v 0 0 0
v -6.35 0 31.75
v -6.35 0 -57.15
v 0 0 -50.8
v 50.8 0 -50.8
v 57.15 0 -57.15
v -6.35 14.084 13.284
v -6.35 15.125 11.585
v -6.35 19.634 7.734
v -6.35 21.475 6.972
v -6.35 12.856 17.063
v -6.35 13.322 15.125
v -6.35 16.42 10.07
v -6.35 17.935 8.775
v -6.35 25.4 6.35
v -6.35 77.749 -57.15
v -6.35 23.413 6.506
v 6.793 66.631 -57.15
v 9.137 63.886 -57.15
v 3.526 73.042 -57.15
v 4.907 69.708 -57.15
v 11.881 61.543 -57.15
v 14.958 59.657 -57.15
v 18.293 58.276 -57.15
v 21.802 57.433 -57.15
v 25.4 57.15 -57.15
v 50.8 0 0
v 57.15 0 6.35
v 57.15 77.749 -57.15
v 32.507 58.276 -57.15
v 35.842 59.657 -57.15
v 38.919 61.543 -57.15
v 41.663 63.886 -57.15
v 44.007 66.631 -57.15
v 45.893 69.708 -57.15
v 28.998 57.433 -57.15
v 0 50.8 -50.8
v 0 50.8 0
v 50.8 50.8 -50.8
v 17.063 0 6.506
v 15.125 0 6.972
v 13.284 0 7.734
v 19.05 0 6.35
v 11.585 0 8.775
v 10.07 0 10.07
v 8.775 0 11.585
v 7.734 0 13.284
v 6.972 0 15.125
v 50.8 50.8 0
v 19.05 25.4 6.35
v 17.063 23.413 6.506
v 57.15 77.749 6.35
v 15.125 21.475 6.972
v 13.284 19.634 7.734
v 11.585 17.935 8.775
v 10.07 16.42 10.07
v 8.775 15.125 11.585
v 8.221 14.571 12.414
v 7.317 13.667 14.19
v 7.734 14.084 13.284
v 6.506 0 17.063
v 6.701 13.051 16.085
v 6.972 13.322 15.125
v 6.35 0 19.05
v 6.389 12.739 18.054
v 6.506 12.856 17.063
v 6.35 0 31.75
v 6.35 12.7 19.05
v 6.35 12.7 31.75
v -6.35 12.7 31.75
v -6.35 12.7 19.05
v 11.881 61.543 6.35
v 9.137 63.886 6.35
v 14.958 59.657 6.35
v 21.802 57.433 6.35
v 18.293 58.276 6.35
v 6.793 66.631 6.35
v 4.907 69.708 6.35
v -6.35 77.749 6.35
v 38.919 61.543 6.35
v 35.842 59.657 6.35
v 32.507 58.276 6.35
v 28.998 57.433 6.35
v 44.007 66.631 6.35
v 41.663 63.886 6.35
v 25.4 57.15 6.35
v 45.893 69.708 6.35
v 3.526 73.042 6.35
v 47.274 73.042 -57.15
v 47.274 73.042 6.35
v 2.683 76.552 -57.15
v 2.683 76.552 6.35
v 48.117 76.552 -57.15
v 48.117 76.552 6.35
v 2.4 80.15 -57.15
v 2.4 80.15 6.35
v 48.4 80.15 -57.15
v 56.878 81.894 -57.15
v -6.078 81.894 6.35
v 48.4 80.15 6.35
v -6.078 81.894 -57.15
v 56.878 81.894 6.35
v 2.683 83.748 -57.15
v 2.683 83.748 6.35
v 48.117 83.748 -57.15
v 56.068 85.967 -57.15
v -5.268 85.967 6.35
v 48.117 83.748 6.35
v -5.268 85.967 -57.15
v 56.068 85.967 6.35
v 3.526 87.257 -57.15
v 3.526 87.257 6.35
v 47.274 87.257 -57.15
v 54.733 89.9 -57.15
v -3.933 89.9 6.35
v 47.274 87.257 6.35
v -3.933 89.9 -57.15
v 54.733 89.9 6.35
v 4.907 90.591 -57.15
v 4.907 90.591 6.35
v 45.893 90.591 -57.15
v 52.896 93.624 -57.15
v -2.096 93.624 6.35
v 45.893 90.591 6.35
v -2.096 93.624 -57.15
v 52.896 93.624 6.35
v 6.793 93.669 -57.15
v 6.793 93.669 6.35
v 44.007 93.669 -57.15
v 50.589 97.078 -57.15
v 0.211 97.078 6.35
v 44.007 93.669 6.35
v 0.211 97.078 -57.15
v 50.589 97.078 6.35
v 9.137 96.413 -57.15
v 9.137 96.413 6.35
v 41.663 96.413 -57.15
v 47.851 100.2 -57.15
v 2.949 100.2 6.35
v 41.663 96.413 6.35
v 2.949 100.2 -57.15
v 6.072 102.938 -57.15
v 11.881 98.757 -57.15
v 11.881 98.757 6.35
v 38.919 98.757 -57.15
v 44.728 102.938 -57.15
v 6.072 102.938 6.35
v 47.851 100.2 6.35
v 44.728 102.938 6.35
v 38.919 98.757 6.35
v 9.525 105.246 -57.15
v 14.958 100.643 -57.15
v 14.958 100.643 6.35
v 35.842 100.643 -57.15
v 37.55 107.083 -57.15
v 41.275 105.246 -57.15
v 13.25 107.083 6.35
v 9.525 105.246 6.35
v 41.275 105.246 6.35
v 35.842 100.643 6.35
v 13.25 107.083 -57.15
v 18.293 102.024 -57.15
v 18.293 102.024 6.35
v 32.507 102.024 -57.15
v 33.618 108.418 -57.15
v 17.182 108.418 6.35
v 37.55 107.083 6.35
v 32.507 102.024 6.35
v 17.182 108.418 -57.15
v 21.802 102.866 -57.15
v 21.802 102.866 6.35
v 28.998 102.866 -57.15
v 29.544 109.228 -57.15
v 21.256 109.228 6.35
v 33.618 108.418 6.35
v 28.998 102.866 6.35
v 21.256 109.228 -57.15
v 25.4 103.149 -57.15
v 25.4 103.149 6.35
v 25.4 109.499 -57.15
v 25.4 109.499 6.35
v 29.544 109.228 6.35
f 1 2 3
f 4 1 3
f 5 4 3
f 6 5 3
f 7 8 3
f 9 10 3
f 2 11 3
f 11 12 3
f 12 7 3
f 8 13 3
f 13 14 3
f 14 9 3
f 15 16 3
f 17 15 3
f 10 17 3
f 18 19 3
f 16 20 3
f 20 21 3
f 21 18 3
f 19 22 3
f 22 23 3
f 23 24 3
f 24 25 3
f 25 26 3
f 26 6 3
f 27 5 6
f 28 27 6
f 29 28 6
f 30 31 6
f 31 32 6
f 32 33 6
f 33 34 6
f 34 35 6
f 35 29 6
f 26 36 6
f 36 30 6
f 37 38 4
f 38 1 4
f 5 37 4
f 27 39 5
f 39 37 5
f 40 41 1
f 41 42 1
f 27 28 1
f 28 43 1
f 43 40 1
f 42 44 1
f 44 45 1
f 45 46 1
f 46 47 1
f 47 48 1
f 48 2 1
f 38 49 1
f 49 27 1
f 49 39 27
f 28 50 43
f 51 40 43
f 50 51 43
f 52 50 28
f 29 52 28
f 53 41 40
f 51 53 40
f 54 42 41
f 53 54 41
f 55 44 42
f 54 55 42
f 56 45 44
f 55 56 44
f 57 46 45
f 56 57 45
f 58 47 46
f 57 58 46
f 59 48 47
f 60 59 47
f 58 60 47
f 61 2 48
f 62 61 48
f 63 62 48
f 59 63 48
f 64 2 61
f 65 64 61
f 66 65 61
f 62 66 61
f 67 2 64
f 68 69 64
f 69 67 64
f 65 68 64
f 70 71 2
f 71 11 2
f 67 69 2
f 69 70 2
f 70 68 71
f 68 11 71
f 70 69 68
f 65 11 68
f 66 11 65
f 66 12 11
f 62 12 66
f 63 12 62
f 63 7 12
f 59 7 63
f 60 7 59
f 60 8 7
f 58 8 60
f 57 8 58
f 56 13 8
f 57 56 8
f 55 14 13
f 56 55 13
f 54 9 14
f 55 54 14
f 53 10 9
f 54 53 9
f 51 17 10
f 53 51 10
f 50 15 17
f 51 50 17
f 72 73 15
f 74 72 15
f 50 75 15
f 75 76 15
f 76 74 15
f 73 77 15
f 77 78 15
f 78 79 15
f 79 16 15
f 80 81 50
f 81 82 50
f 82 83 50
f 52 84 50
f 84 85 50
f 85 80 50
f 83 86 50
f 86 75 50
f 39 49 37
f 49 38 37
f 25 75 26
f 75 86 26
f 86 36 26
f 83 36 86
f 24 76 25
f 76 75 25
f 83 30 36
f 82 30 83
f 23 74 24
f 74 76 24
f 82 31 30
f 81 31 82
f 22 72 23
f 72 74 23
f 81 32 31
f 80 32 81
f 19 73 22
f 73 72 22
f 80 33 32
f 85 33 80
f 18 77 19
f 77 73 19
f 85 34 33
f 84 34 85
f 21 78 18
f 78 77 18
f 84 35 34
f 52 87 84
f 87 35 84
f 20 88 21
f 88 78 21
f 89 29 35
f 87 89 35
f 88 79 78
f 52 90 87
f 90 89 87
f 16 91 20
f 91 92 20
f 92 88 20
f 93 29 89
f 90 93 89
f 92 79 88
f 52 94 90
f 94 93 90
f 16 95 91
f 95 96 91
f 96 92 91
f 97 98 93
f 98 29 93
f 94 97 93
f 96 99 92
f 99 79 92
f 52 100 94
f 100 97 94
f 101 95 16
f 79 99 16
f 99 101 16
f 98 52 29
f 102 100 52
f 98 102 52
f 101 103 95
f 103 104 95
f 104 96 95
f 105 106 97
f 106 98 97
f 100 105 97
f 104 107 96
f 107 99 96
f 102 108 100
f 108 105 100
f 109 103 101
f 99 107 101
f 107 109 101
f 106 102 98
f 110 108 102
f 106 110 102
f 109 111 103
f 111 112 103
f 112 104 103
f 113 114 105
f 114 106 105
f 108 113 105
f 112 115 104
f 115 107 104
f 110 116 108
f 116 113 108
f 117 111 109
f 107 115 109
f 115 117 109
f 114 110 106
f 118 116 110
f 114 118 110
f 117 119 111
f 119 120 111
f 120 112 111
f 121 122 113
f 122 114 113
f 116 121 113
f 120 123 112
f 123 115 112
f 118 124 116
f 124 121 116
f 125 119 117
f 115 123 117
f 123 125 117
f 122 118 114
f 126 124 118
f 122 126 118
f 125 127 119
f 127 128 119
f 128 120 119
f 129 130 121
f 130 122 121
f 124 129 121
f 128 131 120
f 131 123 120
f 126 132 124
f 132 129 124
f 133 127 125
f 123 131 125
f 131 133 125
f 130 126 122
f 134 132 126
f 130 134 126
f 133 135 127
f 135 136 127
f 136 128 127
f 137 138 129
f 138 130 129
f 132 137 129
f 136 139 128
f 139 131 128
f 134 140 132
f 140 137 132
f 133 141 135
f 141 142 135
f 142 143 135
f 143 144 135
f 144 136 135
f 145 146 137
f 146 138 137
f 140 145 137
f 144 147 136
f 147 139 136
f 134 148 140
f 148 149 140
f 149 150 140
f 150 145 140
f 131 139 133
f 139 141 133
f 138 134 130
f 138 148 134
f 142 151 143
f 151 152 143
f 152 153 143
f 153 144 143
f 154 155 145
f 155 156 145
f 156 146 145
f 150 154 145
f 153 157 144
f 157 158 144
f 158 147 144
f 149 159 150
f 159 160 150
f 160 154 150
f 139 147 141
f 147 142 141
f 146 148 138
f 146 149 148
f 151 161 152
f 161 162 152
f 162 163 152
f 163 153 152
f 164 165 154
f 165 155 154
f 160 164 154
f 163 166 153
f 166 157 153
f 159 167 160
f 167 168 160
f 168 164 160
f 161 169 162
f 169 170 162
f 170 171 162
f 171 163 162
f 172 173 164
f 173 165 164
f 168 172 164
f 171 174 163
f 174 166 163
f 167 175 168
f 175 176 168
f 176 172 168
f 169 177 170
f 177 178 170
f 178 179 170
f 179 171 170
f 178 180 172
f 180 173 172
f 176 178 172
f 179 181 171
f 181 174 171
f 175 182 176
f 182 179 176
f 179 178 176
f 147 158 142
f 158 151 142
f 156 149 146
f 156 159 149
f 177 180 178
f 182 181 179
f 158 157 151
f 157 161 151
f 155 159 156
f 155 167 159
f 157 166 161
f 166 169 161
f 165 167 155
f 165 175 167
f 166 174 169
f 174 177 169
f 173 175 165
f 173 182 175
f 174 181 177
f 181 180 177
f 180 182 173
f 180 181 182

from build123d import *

# Parameters (mm, degrees)
SKETCH1_W           = 63.5
SKETCH1_H           = 63.5
SKETCH1_W_2         = 50.8
SKETCH1_H_2         = 50.8
BOSS_EXTRUDE1_DEPTH = 50.8
SKETCH2_W           = 63.5
SKETCH2_H           = 63.5
BOSS_EXTRUDE3_DEPTH = 6.35
SKETCH3_W           = 63.5
SKETCH3_H           = 63.5
BOSS_EXTRUDE4_DEPTH = 52.3494
SKETCH4_R           = 22.9997
CUT_EXTRUDE1_DEPTH  = 139.883012281
FILLET2_R           = 31.75
SKETCH5_W           = 12.7
SKETCH5_H           = 12.7
BOSS_EXTRUDE5_DEPTH = 25.4
FILLET3_R           = 12.7


with BuildPart() as part:
    # Sketch1 → Boss-Extrude1 (new body)
    with BuildSketch(Plane(origin=(0, 0, 0), x_dir=(1, 0, 0), z_dir=(0, 1, 0))):
        with Locations((25.4, 25.4)):
            Rectangle(SKETCH1_W, SKETCH1_H)
        with Locations((25.4, 25.4)):
            Rectangle(SKETCH1_W_2, SKETCH1_H_2, mode=Mode.SUBTRACT)
    extrude(amount=BOSS_EXTRUDE1_DEPTH)

    # Sketch2 → Boss-Extrude3 (add)
    with BuildSketch(Plane(origin=(0, 50.8, 0), x_dir=(1, 0, 0), z_dir=(0, 1, 0))):
        with Locations((25.4, 25.4)):
            Rectangle(SKETCH2_W, SKETCH2_H)
    extrude(amount=BOSS_EXTRUDE3_DEPTH)

    # Sketch3 → Boss-Extrude4 (add)
    with BuildSketch(Plane(origin=(0, 57.15, 0), x_dir=(1, 0, 0), z_dir=(0, 1, 0))):
        with Locations((25.4, 25.4)):
            Rectangle(SKETCH3_W, SKETCH3_H)
    extrude(amount=BOSS_EXTRUDE4_DEPTH)

    # Sketch4 → Cut-Extrude1 (cut, through all)
    with BuildSketch(Plane.XY.offset(6.35)):
        with Locations((25.4, 80.1497)):
            Circle(SKETCH4_R)
    extrude(amount=-CUT_EXTRUDE1_DEPTH, mode=Mode.SUBTRACT)

    # Fillet2
    fillet2_edges = [part.edges().sort_by_distance(p)[0] for p in [
        (-6.35, 109.4994, -25.4),
        (57.15, 109.4994, -25.4),
    ]]
    fillet(fillet2_edges, radius=FILLET2_R - 0.0001)  # a hair under: the kernel refuses the full size

    # Sketch5 → Boss-Extrude5 (add)
    with BuildSketch(Plane.XY.offset(6.35)):
        with Locations((0, 6.35)):
            Rectangle(SKETCH5_W, SKETCH5_H)
    extrude(amount=BOSS_EXTRUDE5_DEPTH)

    # Fillet3
    fillet3_edges = [part.edges().sort_by_distance(p)[0] for p in [
        (6.35, 6.35, 6.35),
        (0, 12.7, 6.35),
    ]]
    fillet(fillet3_edges, radius=FILLET3_R)


solid = part.part
